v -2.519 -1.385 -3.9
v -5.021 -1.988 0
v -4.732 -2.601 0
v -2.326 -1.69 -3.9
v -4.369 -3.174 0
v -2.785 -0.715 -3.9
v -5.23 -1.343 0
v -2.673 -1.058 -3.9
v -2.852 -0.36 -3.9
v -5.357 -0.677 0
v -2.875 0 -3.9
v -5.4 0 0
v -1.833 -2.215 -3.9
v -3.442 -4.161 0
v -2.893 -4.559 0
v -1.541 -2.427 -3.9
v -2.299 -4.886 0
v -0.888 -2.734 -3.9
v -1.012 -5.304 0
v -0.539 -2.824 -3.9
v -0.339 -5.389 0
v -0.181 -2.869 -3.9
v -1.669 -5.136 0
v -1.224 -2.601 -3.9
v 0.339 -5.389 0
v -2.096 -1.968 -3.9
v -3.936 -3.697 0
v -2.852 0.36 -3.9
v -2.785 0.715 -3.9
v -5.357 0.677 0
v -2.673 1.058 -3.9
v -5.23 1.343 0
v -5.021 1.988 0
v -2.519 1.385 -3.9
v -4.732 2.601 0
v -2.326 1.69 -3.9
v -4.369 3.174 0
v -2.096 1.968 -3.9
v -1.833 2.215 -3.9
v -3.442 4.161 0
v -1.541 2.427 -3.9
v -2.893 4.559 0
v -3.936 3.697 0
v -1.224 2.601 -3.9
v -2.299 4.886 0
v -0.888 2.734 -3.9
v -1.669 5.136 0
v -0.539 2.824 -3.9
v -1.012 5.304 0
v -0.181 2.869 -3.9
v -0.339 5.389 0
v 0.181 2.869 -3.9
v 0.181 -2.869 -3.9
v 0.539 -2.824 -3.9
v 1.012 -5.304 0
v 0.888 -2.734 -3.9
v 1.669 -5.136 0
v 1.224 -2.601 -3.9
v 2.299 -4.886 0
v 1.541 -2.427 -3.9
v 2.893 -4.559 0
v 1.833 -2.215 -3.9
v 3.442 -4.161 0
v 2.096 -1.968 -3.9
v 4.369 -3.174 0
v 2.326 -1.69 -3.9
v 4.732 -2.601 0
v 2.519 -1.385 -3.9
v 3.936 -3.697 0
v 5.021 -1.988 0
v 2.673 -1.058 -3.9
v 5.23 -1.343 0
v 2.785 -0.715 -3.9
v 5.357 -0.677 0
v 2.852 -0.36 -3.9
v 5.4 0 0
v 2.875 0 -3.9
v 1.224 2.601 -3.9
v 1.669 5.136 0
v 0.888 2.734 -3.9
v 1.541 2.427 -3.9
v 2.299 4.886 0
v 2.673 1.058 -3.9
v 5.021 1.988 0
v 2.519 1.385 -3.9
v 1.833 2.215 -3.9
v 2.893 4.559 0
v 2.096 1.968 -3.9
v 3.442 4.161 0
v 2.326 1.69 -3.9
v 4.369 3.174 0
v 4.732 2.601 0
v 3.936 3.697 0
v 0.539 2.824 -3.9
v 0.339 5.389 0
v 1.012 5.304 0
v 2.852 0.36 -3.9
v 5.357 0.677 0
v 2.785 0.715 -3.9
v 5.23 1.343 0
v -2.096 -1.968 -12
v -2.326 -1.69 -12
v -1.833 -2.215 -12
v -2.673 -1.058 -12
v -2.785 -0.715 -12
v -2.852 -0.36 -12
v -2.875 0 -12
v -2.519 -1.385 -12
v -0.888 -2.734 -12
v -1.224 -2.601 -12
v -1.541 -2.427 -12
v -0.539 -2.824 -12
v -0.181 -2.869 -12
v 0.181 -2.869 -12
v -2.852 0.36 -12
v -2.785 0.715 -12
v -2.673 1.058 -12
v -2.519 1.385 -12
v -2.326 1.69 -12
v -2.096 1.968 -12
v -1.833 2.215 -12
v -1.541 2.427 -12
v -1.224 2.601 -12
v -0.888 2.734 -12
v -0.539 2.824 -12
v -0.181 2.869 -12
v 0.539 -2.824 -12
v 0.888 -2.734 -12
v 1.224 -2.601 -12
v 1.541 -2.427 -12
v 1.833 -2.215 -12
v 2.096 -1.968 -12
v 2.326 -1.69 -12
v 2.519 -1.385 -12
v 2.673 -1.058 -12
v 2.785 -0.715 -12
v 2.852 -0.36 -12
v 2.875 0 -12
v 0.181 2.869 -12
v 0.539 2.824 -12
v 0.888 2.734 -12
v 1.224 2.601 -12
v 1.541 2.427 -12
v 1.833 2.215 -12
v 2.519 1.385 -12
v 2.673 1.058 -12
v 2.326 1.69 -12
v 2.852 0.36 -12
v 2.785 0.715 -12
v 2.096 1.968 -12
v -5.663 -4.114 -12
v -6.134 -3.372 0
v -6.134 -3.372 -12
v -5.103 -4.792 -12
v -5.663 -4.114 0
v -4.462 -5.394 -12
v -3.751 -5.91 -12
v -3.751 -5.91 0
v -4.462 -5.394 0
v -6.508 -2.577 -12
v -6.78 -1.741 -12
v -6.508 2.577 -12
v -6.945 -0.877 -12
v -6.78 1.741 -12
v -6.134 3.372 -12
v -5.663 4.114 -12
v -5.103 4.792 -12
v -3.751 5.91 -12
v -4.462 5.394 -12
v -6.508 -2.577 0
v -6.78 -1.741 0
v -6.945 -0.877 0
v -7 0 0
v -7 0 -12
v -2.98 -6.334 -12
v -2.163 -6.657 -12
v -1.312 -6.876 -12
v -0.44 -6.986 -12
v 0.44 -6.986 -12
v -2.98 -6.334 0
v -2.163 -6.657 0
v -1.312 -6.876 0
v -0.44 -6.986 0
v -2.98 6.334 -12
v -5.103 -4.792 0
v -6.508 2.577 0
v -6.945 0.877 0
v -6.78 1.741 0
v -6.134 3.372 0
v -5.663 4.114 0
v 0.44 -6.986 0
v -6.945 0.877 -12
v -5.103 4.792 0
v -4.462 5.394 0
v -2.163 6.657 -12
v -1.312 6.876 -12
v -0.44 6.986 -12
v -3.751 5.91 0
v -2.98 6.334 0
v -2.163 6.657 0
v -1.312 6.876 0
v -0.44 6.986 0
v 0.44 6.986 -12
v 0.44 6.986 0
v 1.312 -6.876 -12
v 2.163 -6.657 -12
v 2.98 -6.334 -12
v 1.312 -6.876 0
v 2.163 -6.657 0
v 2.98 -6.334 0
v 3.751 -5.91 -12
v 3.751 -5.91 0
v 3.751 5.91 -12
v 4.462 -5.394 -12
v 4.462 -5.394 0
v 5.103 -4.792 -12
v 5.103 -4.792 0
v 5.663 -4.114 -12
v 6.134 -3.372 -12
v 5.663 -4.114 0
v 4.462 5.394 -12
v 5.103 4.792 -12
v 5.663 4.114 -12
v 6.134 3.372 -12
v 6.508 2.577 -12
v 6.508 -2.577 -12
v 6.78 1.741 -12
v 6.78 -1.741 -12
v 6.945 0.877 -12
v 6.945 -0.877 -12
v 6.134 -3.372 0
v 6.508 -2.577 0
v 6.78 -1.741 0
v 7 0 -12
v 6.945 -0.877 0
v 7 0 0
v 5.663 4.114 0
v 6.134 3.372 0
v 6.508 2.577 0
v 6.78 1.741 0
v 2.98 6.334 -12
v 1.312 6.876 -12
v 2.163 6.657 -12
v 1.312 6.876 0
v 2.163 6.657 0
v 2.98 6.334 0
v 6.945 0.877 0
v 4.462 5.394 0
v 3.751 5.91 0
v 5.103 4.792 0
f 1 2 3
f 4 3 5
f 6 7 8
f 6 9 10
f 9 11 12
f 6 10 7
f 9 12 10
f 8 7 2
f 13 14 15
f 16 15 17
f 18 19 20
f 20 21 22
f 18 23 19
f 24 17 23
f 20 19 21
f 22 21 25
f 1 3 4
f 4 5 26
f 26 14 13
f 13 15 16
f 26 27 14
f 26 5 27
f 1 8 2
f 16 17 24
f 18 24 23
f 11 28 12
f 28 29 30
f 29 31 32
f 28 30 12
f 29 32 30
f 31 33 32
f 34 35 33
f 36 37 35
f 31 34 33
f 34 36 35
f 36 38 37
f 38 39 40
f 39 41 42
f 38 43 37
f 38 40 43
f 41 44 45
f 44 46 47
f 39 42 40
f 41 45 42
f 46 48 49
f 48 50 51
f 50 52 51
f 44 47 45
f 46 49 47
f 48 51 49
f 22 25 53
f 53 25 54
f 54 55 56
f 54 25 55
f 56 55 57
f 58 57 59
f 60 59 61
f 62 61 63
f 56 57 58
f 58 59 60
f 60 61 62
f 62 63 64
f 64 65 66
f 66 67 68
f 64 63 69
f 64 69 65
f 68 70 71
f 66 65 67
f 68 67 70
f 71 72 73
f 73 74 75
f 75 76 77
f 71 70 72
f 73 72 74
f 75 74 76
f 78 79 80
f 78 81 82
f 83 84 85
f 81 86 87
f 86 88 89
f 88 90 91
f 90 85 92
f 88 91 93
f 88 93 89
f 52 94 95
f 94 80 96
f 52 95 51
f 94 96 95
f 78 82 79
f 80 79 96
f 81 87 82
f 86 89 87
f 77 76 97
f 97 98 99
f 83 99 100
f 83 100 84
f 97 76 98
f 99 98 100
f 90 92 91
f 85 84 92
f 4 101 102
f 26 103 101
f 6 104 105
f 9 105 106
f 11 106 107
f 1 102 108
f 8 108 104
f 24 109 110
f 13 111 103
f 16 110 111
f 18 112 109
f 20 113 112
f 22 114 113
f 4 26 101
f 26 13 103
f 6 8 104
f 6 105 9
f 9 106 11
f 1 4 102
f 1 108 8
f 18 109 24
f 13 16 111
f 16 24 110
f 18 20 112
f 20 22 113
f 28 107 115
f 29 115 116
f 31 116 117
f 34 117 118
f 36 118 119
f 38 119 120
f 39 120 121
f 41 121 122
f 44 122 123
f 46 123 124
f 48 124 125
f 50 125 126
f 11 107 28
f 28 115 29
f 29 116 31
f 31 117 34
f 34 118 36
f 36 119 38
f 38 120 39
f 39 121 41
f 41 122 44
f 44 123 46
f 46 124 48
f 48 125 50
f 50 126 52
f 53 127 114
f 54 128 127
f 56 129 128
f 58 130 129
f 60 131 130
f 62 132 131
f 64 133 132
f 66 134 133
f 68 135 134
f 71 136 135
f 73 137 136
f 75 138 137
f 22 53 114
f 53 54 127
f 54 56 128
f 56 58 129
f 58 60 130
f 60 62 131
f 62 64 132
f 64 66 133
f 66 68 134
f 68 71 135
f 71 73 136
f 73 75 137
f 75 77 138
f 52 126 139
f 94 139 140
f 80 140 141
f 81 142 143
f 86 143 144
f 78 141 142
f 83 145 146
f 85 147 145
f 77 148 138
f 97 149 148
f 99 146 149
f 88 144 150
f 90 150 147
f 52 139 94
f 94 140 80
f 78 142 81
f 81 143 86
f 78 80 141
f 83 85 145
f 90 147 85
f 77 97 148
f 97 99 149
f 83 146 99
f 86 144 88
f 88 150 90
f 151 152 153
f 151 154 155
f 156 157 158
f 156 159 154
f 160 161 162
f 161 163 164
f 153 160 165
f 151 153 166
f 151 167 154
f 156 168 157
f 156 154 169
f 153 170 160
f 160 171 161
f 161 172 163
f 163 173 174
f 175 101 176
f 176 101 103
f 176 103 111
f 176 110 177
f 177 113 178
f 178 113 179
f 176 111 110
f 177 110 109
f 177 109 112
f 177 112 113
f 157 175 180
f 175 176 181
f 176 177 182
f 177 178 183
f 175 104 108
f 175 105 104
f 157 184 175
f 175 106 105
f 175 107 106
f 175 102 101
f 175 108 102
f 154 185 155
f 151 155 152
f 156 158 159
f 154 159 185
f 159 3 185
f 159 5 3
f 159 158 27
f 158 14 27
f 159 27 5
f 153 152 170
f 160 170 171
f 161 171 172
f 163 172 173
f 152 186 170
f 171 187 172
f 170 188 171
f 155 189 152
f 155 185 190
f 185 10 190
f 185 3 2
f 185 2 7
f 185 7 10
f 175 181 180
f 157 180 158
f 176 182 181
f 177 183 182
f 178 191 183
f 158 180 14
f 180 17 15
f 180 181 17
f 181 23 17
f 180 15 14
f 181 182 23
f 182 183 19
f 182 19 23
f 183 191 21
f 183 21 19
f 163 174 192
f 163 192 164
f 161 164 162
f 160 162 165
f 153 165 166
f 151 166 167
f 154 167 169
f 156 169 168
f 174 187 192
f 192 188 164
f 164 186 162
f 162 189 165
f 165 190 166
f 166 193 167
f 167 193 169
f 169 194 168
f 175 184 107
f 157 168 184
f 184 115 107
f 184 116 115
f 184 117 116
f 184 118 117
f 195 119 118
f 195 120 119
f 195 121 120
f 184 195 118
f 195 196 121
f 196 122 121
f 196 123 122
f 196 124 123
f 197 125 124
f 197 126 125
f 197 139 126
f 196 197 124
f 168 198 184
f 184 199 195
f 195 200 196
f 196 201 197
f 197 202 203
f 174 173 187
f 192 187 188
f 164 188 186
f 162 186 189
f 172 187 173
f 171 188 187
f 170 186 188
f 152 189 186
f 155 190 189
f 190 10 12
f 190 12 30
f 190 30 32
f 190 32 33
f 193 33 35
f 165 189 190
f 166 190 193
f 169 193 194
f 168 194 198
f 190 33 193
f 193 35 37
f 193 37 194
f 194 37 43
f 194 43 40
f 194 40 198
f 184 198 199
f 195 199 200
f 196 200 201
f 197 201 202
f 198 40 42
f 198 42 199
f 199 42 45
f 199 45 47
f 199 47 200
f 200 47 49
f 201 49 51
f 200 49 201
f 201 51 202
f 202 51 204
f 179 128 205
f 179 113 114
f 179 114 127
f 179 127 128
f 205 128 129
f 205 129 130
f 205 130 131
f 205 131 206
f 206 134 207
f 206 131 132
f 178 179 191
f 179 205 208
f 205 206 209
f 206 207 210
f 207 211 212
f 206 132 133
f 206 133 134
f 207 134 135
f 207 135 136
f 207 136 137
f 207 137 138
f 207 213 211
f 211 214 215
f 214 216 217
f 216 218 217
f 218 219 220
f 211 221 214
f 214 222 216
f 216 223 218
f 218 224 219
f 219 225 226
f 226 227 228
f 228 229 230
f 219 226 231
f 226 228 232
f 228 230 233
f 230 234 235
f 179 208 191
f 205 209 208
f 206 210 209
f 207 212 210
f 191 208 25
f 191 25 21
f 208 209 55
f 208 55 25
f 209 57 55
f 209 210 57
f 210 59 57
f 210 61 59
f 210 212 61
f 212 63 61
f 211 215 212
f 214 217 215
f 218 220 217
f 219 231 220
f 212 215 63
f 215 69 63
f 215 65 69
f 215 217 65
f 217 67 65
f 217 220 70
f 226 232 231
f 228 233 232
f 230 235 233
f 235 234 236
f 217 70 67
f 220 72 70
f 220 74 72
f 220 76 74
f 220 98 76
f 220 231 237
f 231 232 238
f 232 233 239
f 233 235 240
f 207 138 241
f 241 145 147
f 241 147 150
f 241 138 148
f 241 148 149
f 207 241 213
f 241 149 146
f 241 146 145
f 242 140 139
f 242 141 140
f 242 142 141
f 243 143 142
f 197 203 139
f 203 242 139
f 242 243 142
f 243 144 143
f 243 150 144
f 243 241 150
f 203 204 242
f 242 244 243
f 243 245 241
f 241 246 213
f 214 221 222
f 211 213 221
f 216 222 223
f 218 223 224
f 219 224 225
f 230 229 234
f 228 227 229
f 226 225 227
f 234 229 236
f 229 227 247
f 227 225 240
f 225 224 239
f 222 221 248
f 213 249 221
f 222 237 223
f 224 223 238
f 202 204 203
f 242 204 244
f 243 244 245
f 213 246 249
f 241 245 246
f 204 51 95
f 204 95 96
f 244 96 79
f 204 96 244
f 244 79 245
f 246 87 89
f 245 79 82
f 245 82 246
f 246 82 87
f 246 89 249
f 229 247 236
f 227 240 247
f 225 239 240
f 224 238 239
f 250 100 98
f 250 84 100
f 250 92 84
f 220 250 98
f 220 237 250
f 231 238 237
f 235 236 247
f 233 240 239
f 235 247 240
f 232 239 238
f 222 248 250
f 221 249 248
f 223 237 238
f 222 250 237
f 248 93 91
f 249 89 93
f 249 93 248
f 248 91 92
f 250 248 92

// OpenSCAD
$fn = 50;

difference() {
	union() {
		translate(v = [0, 0, -12.0]) {
			cylinder(h = 12, r = 7.0);
		}
		#translate(v = [0, 0, -15.0]) {
			cylinder(h = 15, r = 2.875);
		}
	}
	union() {
		translate(v = [0, 0, 0]) {
			rotate(a = [0, 0, 0]) {
				difference() {
					union() {
						translate(v = [0, 0, -15.0]) {
							cylinder(h = 15, r = 2.6);
						}
						translate(v = [0, 0, -3.9]) {
							cylinder(h = 3.9, r1 = 2.875, r2 = 5.4);
						}
						translate(v = [0, 0, -15.0]) {
							cylinder(h = 15, r = 2.875);
						}
						translate(v = [0, 0, -15.0]) {
							cylinder(h = 15, r = 2.6);
						}
					}
					union();
				}
			}
		}
	}
}
